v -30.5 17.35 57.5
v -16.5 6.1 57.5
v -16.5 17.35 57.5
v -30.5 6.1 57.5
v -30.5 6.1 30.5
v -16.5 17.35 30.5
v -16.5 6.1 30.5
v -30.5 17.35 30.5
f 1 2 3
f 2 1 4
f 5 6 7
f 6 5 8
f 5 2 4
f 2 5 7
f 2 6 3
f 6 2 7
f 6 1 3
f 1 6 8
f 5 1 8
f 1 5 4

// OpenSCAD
// file: D:/Projects/assembly-workshop/outputs/Screen_Pi_Hue_SCR5-H8_2026-10-31/checks/geometry.scad
// SCR5-G; mm; FRONT view: X right, Z up, Y into rack. Glass/plate front Y=0.
// Measured values: work/screen-5in/Dimensions.md. Physical fit/strength UNKNOWN.
part="plate";
DROP=0.45; // coupon winner can be substituted here; all three pins use this DROP
LIP=0.8; LIP_ON=true;
LIP_EDGES=[true,true,false,false]; // left,right,bottom,top; Brian: side lips only, cosmetic
FRAME_STEP=1.5; // measured glass-edge inset to metal LCD frame, left/right only
SHIM=0; // moves rear frame seat and plate-boss mating face back
$fn=48;
GCX=33; GCZ=41.5; PW=252; PH=88.8; PT=4;
GW=120.7; GH=77.2; CLEAR=0.2; WW=GW+2*CLEAR; WH=GH+2*CLEAR;
SEAT=13.3+SHIM; FT=3;
SO=[56.45,34]; BTN_X=[45.5,35.5,25.5];
PCB_TOP=38; GAP=0.10; LEAF_T=0.8;
HOLE=[3.4,40.3,44.7];
BX=[GCX-68,GCX+68]; BZ=[10,72];
// DSI connector X extent is unmeasured: conservative assumed 8 mm inward from PCB edge.
DSI=[GCX-60.5,9.1,GCZ-38+30,8,5.25,21];
module xz(y,d){translate([0,y+d,0])rotate([90,0,0])linear_extrude(d)children();}
// rr/rack_slots copied from SCR5-F; same exact slot centres, outline shifted -0.05 Z to centre 44.4.
module rr(w,h,r){hull()for(x=[-w/2+r,w/2-r],z=[-h/2+r,h/2-r])translate([x,z])circle(r=r);}
module rack_slots(){for(x=[-118.2625,118.2625],z=[6.323,38.127,50.773,82.577])translate([x,z])hull()for(dx=[-1.5,1.5])translate([dx,0])circle(d=7);}
module cyl_y(x,y,z,d,h){translate([x,y,z])rotate([-90,0,0])cylinder(d=d,h=h);}
module window_cut(){
  xz(-0.02,4.04)translate([GCX,GCZ])square([WW,WH],center=true);
  // 0.3 x 45-degree chamfer, square corners, front only.
  translate([GCX,0.3,GCZ])rotate([90,0,0])
    linear_extrude(height=0.3,scale=[(WW+0.6)/WW,(WH+0.6)/WH])square([WW,WH],center=true);
}
module lips(){
  // Cosmetic side ledges only; rear frame/standoffs set depth and retain the screen.
  if(LIP_ON)for(i=[0:3])if(LIP_EDGES[i]){
    if(i<2)translate([GCX+(i==0?-WW/2:WW/2-LIP),2.5,GCZ-GH/2+4])cube([LIP,0.8,GH-8]);
    else translate([GCX-GW/2+4,2.5,GCZ+(i==2?-WH/2:WH/2-LIP)])cube([GW-8,0.8,LIP]);
  }
}
// Leaf/nub/bump geometry copied from SCR5-WP-A, translated to this glass centre.
module leaves(){for(x=BTN_X)translate([GCX+x-1.5,0,GCZ]){
  translate([0,0,PCB_TOP+GAP+0.9+0.1])cube([3,11.8,LEAF_T]);
  translate([0,10.2,PCB_TOP+GAP])cube([3,1.4,1.0+LEAF_T/2]);
  translate([0,10.4,PCB_TOP+GAP+1.0+LEAF_T])cube([3,1.0,0.9]);
}}
module plate(){difference(){union(){
  difference(){xz(0,PT)translate([0,PH/2])rr(PW,PH,2.5);window_cut();}
  for(x=BX,z=BZ)cyl_y(x,3.9,z,8,SEAT-3.9);
  leaves(); lips();
 }
 xz(-0.02,4.04)rack_slots();
 for(x=BTN_X)translate([GCX+x-HOLE[0]/2,-0.02,GCZ+HOLE[1]])cube([HOLE[0],SEAT+FT+0.04,HOLE[2]-HOLE[1]]);
 // Printed-in screw pilots (no heat-set OD assumption): nominal M2.5, fit UNKNOWN.
 for(x=BX,z=BZ)cyl_y(x,SEAT-6,z,2.1,6.02);
 // Rear engraving, 0.5 deep, left field.
 xz(3.5,0.52)translate([-75,40])mirror([1,0])text("SCR5-G",size=6,halign="center",font="Liberation Sans:style=Bold");
}}
module frame_blank(){
  // C-shaped perimeter; no material across the board centre / touch FPC.
  xz(SEAT,FT)translate([GCX,GCZ])difference(){square([132,76],center=true);square([116,60],center=true);}
  for(sx=[-1,1],sz=[-1,1])cyl_y(GCX+sx*SO[0],SEAT,GCZ+sz*SO[1],9,FT);
  for(x=BX,z=BZ)hull(){cyl_y(x,SEAT,z,8,FT);cyl_y(GCX+(x<GCX?-62:62),SEAT,z,8,FT);}
}
module dsi_keepout(){translate([DSI[0]-3,DSI[1]-3,DSI[2]-3])cube([DSI[3]+6,DSI[4]+6,DSI[5]+6]);}
module ribbon_route(){
  // Open left/up corridor 18 mm wide; extends past top of plate.
  translate([GCX-84,6.1,GCZ-11])cube([18,24,65]);
  translate([GCX-84,6.1,GCZ-11])cube([32,24,27]);
}
module frame(){difference(){frame_blank();dsi_keepout();ribbon_route();
 for(sx=[-1,1],sz=[-1,1])cyl_y(GCX+sx*SO[0],SEAT-0.02,GCZ+sz*SO[1],2.8,FT+0.04);
 for(x=BX,z=BZ)cyl_y(x,SEAT-0.02,z,2.8,FT+0.04);
}}
// Pin polygon/cap/notch/dot design copied unchanged from SCR5-WP-A.
module pin(d,dots){s=2*d+0.5;difference(){union(){
 translate([-1.5,0,0])rotate([90,0,90])linear_extrude(3)polygon([
 [-s-0.02,40.5],[10.2,40.5],[10.2,41.0],[11.5,41.0],[11.5+2*d,41.0-d],[15,41.0-d],[15,44.5],[-s-0.02,44.5]]);
 translate([-2.5,-s-1.5,39.6])cube([5,1.5,5.8]);
 }for(i=[0:dots-1])translate([(i-(dots-1)/2)*1.4,-s-1.5-0.01,43.5])rotate([-90,0,0])cylinder(d=0.9,h=0.4);}}
module placed_pin(i){translate([GCX+BTN_X[i],0,GCZ])pin(DROP,i+1);}
// Measured layers: cover glass 0.9 + second glass 1.6, metal frame 3.0,
// open gap 2.0, PCB 1.6. Metal frame inset ~1.5 at LEFT/RIGHT only.
// PCB centred under glass and full metal-frame top/bottom extent remain UNKNOWN.
module glass(){translate([GCX-GW/2,0,GCZ-GH/2])cube([GW,2.5,GH]);}
module lcd(){
  translate([GCX-GW/2+FRAME_STEP,2.5,GCZ-GH/2])cube([GW-2*FRAME_STEP,3.0,GH]);
}
module pcb(){translate([GCX-60.5,7.5,GCZ-38])cube([121,1.6,76]);}
module standoffs(){for(sx=[-1,1],sz=[-1,1])difference(){cyl_y(GCX+sx*SO[0],9.1,GCZ+sz*SO[1],5.5,4.2);cyl_y(GCX+sx*SO[0],9.08,GCZ+sz*SO[1],2.5,4.24);}}
module buttons(){for(x=BTN_X){
 translate([GCX+x-3.5,9.1,GCZ+38-3.4])cube([7,3.6,2.4]);
 translate([GCX+x-1.5,9.1,GCZ+37])cube([3,3.6,1]);
}}
module dsi(){translate([DSI[0],DSI[1],DSI[2]])cube([DSI[3],DSI[4],DSI[5]]);}
module touch(){translate([GCX-10,9.1,GCZ-5])cube([20,2,10]);} // lateral extent unmeasured
module dummy(){glass();lcd();pcb();standoffs();buttons();dsi();touch();}
module assembly(){color("gray")plate();color("orange")frame();for(i=[0:2])color("cyan")placed_pin(i);color([0.2,0.3,0.4,0.4])dummy();}
// main file
include <D:/Projects/assembly-workshop/outputs/Screen_Pi_Hue_SCR5-H8_2026-10-31/checks/geometry.scad>
dsi_keepout();
